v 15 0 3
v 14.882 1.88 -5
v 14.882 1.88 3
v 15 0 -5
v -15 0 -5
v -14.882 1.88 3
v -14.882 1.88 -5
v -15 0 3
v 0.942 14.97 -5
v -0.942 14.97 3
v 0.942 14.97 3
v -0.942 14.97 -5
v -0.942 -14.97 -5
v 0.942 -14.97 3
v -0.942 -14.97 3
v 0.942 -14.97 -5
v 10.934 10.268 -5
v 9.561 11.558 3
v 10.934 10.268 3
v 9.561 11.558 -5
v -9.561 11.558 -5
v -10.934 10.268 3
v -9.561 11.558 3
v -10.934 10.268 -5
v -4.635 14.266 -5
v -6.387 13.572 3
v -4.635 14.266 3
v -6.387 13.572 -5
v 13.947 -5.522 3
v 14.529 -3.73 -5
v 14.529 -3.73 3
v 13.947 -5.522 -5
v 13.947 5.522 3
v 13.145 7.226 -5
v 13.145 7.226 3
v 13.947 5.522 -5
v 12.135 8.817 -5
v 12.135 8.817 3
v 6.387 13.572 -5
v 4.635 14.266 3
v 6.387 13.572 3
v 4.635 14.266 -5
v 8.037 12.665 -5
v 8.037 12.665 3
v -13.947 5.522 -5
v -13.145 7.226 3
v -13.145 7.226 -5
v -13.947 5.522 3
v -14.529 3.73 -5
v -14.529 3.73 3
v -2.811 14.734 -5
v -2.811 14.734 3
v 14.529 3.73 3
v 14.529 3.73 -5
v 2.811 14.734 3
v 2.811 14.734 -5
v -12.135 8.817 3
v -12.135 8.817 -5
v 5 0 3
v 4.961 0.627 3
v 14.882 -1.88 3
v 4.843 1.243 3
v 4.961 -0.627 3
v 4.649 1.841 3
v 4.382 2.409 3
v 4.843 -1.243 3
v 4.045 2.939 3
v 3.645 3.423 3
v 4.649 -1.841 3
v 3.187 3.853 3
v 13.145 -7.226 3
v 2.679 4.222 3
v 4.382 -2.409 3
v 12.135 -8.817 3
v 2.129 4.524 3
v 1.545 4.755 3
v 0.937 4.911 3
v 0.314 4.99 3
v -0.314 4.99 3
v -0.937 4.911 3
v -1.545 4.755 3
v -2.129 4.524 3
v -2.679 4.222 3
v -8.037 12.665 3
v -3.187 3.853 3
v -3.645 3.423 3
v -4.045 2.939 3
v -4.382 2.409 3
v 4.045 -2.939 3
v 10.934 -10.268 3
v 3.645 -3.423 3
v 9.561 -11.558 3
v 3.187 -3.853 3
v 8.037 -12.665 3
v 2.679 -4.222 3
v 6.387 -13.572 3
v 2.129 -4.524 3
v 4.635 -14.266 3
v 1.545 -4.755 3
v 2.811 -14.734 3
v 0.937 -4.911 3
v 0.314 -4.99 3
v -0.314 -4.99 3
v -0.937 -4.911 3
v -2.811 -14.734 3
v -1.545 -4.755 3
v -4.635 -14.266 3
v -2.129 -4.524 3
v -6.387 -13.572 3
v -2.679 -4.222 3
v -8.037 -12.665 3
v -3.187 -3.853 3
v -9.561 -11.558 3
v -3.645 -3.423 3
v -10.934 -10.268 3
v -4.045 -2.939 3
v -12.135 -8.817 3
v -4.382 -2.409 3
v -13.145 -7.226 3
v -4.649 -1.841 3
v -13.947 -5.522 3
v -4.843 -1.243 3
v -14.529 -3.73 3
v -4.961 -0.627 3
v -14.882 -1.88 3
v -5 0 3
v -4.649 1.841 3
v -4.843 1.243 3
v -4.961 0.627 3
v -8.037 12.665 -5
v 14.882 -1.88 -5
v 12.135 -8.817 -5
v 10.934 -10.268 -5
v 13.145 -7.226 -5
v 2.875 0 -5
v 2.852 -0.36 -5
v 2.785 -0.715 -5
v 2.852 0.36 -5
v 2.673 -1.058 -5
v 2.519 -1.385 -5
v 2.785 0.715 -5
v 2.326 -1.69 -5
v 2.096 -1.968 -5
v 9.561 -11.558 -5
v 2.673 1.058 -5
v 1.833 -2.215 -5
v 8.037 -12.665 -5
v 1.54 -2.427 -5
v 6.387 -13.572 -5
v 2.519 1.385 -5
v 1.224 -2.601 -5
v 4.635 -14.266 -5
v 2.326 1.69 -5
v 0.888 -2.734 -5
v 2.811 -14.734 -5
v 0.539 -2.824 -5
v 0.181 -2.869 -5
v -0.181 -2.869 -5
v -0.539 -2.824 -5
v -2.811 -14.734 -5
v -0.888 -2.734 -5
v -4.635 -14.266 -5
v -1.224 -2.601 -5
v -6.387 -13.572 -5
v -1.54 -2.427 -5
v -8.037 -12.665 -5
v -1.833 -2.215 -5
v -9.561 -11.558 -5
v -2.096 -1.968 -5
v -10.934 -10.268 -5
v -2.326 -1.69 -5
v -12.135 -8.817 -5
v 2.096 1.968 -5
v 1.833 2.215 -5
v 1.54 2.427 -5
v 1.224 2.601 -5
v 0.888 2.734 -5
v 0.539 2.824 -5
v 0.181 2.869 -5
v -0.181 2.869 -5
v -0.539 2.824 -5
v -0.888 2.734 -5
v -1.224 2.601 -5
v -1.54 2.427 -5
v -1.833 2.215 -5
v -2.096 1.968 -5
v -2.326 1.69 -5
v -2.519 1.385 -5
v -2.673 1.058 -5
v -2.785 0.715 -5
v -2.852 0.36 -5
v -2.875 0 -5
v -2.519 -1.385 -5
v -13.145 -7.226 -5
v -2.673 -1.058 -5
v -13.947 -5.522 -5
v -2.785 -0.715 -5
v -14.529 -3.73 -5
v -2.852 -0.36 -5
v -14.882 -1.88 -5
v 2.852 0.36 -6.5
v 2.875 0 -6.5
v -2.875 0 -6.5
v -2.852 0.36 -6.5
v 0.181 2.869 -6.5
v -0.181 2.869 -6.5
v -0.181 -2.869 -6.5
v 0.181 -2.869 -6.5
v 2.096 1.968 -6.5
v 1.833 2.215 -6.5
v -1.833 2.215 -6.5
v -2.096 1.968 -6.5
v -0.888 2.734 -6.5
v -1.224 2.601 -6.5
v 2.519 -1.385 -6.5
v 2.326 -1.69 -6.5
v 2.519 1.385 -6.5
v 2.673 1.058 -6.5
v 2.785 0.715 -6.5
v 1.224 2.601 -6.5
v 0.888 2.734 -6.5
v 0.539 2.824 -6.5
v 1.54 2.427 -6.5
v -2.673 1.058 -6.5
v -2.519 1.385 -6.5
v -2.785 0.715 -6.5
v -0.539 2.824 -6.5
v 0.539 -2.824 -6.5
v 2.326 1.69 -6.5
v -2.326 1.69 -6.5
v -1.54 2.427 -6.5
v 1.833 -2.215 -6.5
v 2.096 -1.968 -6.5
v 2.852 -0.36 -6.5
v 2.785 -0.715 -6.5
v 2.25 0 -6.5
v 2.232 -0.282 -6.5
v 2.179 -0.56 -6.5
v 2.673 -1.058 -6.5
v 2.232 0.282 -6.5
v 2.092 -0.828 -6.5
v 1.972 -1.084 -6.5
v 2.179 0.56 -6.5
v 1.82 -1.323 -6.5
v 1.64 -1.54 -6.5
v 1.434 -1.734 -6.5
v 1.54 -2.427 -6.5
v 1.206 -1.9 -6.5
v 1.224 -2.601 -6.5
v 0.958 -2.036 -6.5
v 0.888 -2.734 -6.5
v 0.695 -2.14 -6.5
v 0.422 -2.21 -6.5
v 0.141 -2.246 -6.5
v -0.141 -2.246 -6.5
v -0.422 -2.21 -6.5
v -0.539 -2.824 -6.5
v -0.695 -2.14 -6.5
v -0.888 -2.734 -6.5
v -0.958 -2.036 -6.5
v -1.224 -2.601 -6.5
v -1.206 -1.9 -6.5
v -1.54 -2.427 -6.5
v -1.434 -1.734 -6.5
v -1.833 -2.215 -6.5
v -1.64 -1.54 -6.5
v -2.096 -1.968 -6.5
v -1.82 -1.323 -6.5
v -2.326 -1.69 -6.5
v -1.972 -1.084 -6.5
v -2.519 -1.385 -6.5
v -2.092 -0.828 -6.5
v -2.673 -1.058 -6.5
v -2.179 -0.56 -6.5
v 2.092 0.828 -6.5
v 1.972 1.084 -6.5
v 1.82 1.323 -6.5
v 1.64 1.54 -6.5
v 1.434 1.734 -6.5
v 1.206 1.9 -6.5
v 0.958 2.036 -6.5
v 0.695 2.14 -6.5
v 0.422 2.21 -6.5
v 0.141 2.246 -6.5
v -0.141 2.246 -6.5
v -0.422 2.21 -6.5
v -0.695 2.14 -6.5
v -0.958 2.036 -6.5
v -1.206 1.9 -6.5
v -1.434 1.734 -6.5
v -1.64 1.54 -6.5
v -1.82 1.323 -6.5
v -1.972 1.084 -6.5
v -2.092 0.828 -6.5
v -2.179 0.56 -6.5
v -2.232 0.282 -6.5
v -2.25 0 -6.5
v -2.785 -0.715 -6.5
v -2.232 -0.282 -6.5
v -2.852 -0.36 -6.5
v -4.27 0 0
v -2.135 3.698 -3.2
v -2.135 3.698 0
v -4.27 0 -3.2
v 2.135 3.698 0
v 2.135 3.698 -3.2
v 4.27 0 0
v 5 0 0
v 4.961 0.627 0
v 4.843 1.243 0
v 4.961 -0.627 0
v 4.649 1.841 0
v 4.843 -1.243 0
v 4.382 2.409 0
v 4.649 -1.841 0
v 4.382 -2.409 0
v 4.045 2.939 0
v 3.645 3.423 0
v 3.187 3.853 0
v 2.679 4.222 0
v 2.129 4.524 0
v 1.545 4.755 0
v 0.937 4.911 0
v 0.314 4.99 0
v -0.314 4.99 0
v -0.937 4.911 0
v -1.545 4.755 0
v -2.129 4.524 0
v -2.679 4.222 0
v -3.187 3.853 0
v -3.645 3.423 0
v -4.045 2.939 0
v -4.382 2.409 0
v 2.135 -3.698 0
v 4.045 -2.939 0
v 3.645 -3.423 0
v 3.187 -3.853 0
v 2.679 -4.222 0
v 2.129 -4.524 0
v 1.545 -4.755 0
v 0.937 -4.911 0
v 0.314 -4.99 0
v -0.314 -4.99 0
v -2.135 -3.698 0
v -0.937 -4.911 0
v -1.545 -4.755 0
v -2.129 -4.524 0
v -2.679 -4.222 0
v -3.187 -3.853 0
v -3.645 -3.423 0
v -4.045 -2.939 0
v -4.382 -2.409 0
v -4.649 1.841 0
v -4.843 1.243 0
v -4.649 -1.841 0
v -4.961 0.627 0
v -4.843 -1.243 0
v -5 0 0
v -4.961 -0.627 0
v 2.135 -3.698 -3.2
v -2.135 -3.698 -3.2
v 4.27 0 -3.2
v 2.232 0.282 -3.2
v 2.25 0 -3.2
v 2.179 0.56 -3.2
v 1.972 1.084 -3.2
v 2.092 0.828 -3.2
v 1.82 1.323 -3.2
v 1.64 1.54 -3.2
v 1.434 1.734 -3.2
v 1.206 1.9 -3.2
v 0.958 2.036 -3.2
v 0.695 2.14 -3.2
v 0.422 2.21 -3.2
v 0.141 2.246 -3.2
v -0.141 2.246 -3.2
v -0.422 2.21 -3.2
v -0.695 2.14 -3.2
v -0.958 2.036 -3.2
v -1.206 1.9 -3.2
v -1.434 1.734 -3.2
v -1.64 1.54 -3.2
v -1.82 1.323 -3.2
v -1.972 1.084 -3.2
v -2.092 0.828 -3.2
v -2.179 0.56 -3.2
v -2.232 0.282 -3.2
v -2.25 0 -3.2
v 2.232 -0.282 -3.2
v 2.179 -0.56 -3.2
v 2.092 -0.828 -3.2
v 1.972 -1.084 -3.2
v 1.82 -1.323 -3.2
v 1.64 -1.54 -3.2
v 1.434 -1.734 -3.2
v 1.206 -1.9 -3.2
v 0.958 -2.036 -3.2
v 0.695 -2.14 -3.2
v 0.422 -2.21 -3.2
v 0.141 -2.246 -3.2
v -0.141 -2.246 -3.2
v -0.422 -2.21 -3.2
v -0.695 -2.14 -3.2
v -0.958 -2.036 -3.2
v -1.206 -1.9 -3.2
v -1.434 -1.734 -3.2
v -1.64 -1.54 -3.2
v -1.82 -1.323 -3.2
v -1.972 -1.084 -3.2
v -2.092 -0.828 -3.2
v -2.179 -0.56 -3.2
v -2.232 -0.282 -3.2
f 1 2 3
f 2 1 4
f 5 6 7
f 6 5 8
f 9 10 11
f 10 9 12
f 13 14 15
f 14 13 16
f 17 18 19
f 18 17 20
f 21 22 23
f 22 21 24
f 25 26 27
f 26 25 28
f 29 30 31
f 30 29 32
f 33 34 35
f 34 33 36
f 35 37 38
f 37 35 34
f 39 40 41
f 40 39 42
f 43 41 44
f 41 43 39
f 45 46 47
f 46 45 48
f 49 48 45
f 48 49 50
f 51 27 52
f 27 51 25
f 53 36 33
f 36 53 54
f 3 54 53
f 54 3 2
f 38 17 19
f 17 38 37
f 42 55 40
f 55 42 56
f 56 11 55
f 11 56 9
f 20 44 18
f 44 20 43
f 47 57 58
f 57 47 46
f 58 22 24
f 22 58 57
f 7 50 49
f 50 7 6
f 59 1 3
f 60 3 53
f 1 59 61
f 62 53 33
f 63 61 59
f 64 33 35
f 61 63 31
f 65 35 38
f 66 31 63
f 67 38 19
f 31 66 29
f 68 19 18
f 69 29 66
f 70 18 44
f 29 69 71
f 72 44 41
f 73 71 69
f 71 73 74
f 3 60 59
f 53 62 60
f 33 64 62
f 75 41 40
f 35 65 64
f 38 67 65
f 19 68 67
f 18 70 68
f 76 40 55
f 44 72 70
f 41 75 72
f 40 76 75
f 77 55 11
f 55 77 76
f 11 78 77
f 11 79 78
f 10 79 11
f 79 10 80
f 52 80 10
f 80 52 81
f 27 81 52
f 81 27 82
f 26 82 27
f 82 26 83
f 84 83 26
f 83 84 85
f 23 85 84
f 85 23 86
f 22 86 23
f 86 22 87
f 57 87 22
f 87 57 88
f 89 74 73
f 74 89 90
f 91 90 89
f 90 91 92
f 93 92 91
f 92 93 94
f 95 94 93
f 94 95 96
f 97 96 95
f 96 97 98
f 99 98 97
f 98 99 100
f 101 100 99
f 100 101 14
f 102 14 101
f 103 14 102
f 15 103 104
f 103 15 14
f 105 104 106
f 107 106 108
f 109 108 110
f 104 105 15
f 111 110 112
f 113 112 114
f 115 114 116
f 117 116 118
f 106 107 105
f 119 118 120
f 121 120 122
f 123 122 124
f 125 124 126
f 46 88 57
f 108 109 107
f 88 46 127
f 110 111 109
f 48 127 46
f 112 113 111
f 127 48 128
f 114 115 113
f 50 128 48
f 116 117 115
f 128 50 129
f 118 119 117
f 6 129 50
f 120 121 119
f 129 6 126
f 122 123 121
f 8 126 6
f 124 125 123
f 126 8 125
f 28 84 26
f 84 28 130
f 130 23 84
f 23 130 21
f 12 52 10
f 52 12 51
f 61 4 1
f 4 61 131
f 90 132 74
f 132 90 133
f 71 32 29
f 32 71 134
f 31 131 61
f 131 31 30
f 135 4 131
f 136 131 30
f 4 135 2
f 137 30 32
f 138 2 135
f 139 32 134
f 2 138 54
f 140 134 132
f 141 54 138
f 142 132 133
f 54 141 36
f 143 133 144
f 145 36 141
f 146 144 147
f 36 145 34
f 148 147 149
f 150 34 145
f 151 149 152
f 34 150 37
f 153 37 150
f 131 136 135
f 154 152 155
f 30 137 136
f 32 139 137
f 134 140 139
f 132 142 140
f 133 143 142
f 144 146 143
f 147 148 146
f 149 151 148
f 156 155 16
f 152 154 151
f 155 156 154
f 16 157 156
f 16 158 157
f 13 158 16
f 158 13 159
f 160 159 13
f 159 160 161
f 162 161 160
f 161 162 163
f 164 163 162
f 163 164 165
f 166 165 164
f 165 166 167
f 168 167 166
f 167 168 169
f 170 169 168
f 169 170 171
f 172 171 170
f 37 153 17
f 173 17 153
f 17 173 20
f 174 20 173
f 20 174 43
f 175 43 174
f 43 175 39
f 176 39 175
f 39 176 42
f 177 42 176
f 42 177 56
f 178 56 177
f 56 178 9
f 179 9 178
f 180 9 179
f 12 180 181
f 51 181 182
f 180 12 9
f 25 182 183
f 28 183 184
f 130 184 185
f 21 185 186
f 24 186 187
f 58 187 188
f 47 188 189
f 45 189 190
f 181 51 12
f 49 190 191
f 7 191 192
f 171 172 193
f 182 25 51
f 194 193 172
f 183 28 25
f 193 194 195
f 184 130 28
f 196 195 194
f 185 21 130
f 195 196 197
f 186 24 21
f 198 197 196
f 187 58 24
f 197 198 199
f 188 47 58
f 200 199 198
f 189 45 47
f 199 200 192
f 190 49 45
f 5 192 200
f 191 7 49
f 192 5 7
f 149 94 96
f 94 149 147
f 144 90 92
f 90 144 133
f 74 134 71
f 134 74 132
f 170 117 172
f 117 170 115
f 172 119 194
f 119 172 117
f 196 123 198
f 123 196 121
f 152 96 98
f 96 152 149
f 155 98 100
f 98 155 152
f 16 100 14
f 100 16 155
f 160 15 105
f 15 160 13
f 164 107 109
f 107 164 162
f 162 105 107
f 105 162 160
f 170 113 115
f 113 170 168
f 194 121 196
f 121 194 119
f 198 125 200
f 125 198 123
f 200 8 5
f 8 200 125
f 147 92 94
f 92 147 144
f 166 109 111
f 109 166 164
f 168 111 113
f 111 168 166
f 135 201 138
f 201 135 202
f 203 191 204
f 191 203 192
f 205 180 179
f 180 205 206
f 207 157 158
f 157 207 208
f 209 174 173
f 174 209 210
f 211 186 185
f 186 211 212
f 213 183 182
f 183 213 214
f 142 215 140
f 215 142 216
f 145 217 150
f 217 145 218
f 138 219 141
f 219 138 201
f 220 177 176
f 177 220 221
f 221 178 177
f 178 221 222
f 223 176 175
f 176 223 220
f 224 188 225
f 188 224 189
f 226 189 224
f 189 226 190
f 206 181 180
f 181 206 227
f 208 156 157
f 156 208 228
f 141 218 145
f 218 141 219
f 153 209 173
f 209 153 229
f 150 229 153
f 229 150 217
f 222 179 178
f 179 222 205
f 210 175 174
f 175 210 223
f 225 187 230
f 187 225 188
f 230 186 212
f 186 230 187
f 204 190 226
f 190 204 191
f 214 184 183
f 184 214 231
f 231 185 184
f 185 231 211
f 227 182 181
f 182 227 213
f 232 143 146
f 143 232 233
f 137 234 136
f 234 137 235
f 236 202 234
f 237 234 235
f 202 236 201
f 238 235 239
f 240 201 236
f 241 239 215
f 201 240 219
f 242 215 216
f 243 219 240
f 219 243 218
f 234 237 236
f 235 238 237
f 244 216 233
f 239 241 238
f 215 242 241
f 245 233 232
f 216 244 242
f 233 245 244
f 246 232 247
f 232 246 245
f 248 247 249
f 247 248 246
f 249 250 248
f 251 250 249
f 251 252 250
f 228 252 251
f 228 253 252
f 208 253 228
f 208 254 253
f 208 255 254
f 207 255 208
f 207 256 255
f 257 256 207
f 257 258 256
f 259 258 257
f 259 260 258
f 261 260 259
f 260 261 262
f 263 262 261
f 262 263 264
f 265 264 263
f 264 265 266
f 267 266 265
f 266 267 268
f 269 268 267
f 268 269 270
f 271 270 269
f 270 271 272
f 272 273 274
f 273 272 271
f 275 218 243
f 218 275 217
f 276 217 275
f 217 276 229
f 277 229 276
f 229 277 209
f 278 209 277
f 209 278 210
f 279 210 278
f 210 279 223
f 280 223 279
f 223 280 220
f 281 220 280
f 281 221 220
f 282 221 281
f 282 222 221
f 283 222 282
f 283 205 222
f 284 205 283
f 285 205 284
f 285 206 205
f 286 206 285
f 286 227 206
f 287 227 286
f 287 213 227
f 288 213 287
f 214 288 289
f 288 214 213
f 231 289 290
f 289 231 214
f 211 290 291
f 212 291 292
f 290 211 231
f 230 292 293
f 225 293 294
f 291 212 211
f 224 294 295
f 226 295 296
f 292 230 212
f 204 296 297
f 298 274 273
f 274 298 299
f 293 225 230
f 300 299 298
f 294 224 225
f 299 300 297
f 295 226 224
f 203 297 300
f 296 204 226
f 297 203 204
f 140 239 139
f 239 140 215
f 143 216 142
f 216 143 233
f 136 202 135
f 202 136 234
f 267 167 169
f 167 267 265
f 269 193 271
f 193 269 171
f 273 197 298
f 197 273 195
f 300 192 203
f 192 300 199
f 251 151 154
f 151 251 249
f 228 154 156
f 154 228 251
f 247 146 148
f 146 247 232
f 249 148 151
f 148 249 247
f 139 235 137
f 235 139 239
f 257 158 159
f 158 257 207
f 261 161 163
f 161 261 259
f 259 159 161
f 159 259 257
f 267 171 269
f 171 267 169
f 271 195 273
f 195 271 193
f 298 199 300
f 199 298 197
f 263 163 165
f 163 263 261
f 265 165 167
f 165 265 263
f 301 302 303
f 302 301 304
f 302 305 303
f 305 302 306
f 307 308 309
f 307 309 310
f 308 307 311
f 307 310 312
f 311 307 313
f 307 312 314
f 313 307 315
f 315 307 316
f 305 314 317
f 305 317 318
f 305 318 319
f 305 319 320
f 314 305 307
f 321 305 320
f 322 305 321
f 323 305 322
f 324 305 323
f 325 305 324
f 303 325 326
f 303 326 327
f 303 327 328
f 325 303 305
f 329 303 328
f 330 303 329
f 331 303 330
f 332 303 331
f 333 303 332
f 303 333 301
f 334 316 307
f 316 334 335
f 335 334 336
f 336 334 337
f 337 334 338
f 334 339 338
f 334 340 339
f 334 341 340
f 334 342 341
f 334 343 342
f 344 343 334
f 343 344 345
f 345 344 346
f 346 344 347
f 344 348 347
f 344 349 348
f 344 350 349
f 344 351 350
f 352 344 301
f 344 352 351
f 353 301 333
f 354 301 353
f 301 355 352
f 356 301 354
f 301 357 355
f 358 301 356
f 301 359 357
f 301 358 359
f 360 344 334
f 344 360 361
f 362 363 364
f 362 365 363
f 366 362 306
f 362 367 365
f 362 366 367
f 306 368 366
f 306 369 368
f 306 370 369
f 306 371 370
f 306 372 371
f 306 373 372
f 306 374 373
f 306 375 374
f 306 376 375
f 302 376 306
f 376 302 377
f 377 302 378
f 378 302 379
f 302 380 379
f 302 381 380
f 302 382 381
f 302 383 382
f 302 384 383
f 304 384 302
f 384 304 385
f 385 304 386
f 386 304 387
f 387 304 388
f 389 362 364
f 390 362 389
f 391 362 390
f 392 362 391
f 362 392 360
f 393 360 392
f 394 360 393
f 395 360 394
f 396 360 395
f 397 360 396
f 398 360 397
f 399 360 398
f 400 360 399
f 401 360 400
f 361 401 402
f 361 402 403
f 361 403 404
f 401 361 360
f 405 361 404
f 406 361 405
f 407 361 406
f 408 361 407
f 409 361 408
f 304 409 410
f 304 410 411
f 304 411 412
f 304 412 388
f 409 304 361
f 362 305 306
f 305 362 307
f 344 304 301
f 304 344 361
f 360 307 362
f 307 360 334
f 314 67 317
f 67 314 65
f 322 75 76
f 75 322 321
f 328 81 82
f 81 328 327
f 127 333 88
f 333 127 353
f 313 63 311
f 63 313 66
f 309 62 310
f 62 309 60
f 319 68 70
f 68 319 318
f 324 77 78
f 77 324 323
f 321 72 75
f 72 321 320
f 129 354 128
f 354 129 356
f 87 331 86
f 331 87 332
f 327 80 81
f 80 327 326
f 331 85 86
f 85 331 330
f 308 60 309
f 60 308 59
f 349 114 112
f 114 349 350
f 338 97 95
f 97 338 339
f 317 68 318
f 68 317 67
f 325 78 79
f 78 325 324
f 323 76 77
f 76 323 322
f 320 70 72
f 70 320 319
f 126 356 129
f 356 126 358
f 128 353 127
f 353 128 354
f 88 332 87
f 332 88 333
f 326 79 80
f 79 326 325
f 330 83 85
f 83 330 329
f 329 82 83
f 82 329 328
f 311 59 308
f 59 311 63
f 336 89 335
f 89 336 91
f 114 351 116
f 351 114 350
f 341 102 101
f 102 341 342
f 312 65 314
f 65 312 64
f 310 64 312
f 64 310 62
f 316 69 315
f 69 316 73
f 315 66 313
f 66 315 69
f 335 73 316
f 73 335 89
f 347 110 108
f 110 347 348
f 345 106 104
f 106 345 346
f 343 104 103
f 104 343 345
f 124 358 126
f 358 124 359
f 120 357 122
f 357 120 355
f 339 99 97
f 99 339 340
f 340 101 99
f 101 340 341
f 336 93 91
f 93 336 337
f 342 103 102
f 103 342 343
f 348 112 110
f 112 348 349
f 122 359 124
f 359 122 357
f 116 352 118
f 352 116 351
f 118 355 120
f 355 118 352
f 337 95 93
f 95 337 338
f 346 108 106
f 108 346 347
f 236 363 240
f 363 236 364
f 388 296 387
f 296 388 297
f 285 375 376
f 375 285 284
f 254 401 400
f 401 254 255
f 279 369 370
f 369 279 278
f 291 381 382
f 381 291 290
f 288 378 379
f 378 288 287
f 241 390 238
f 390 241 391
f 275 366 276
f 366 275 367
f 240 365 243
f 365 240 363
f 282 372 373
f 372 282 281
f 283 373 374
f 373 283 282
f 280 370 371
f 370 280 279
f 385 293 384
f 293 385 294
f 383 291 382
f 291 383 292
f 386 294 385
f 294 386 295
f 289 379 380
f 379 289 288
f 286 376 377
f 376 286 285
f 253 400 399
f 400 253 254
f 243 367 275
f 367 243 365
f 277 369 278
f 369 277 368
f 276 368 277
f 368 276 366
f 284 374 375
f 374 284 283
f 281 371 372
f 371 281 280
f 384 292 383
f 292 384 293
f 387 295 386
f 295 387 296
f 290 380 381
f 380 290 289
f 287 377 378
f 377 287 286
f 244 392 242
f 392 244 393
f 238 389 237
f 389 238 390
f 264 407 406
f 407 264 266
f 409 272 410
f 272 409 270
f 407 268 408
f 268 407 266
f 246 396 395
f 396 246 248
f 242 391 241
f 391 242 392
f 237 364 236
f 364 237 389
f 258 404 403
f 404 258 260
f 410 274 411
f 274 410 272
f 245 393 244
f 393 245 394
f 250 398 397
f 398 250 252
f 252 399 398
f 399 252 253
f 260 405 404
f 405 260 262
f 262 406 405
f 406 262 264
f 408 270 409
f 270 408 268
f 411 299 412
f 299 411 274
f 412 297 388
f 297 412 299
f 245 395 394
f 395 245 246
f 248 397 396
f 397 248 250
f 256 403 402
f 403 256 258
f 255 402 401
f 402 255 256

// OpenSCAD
$fn = 50;

difference() {
	union() {
		translate(v = [0, 0, -5.0]) {
			cylinder(h = 8.0, r = 15.0);
		}
		#translate(v = [0, 0, -6.5]) {
			cylinder(h = 6.5, r = 2.875);
		}
	}
	union() {
		translate(v = [0, 0, 0]) {
			rotate(a = [0, 0, 0]) {
				difference() {
					union() {
						translate(v = [0, 0, -3.2]) {
							linear_extrude(height = 3.2) {
								polygon(points = [[4.2698, 0.0], [2.1349000000000005, 3.697755269078796], [-2.134899999999999, 3.6977552690787965], [-4.2698, 5.228996902999369e-16], [-2.134900000000002, -3.6977552690787956], [2.1348999999999974, -3.697755269078798]]);
							}
						}
					}
					union();
				}
			}
		}
		#cylinder(h = 3, r = 5.0);
		#translate(v = [0, 0, -100.0]) {
			cylinder(h = 200, r = 2.25);
		}
	}
}
